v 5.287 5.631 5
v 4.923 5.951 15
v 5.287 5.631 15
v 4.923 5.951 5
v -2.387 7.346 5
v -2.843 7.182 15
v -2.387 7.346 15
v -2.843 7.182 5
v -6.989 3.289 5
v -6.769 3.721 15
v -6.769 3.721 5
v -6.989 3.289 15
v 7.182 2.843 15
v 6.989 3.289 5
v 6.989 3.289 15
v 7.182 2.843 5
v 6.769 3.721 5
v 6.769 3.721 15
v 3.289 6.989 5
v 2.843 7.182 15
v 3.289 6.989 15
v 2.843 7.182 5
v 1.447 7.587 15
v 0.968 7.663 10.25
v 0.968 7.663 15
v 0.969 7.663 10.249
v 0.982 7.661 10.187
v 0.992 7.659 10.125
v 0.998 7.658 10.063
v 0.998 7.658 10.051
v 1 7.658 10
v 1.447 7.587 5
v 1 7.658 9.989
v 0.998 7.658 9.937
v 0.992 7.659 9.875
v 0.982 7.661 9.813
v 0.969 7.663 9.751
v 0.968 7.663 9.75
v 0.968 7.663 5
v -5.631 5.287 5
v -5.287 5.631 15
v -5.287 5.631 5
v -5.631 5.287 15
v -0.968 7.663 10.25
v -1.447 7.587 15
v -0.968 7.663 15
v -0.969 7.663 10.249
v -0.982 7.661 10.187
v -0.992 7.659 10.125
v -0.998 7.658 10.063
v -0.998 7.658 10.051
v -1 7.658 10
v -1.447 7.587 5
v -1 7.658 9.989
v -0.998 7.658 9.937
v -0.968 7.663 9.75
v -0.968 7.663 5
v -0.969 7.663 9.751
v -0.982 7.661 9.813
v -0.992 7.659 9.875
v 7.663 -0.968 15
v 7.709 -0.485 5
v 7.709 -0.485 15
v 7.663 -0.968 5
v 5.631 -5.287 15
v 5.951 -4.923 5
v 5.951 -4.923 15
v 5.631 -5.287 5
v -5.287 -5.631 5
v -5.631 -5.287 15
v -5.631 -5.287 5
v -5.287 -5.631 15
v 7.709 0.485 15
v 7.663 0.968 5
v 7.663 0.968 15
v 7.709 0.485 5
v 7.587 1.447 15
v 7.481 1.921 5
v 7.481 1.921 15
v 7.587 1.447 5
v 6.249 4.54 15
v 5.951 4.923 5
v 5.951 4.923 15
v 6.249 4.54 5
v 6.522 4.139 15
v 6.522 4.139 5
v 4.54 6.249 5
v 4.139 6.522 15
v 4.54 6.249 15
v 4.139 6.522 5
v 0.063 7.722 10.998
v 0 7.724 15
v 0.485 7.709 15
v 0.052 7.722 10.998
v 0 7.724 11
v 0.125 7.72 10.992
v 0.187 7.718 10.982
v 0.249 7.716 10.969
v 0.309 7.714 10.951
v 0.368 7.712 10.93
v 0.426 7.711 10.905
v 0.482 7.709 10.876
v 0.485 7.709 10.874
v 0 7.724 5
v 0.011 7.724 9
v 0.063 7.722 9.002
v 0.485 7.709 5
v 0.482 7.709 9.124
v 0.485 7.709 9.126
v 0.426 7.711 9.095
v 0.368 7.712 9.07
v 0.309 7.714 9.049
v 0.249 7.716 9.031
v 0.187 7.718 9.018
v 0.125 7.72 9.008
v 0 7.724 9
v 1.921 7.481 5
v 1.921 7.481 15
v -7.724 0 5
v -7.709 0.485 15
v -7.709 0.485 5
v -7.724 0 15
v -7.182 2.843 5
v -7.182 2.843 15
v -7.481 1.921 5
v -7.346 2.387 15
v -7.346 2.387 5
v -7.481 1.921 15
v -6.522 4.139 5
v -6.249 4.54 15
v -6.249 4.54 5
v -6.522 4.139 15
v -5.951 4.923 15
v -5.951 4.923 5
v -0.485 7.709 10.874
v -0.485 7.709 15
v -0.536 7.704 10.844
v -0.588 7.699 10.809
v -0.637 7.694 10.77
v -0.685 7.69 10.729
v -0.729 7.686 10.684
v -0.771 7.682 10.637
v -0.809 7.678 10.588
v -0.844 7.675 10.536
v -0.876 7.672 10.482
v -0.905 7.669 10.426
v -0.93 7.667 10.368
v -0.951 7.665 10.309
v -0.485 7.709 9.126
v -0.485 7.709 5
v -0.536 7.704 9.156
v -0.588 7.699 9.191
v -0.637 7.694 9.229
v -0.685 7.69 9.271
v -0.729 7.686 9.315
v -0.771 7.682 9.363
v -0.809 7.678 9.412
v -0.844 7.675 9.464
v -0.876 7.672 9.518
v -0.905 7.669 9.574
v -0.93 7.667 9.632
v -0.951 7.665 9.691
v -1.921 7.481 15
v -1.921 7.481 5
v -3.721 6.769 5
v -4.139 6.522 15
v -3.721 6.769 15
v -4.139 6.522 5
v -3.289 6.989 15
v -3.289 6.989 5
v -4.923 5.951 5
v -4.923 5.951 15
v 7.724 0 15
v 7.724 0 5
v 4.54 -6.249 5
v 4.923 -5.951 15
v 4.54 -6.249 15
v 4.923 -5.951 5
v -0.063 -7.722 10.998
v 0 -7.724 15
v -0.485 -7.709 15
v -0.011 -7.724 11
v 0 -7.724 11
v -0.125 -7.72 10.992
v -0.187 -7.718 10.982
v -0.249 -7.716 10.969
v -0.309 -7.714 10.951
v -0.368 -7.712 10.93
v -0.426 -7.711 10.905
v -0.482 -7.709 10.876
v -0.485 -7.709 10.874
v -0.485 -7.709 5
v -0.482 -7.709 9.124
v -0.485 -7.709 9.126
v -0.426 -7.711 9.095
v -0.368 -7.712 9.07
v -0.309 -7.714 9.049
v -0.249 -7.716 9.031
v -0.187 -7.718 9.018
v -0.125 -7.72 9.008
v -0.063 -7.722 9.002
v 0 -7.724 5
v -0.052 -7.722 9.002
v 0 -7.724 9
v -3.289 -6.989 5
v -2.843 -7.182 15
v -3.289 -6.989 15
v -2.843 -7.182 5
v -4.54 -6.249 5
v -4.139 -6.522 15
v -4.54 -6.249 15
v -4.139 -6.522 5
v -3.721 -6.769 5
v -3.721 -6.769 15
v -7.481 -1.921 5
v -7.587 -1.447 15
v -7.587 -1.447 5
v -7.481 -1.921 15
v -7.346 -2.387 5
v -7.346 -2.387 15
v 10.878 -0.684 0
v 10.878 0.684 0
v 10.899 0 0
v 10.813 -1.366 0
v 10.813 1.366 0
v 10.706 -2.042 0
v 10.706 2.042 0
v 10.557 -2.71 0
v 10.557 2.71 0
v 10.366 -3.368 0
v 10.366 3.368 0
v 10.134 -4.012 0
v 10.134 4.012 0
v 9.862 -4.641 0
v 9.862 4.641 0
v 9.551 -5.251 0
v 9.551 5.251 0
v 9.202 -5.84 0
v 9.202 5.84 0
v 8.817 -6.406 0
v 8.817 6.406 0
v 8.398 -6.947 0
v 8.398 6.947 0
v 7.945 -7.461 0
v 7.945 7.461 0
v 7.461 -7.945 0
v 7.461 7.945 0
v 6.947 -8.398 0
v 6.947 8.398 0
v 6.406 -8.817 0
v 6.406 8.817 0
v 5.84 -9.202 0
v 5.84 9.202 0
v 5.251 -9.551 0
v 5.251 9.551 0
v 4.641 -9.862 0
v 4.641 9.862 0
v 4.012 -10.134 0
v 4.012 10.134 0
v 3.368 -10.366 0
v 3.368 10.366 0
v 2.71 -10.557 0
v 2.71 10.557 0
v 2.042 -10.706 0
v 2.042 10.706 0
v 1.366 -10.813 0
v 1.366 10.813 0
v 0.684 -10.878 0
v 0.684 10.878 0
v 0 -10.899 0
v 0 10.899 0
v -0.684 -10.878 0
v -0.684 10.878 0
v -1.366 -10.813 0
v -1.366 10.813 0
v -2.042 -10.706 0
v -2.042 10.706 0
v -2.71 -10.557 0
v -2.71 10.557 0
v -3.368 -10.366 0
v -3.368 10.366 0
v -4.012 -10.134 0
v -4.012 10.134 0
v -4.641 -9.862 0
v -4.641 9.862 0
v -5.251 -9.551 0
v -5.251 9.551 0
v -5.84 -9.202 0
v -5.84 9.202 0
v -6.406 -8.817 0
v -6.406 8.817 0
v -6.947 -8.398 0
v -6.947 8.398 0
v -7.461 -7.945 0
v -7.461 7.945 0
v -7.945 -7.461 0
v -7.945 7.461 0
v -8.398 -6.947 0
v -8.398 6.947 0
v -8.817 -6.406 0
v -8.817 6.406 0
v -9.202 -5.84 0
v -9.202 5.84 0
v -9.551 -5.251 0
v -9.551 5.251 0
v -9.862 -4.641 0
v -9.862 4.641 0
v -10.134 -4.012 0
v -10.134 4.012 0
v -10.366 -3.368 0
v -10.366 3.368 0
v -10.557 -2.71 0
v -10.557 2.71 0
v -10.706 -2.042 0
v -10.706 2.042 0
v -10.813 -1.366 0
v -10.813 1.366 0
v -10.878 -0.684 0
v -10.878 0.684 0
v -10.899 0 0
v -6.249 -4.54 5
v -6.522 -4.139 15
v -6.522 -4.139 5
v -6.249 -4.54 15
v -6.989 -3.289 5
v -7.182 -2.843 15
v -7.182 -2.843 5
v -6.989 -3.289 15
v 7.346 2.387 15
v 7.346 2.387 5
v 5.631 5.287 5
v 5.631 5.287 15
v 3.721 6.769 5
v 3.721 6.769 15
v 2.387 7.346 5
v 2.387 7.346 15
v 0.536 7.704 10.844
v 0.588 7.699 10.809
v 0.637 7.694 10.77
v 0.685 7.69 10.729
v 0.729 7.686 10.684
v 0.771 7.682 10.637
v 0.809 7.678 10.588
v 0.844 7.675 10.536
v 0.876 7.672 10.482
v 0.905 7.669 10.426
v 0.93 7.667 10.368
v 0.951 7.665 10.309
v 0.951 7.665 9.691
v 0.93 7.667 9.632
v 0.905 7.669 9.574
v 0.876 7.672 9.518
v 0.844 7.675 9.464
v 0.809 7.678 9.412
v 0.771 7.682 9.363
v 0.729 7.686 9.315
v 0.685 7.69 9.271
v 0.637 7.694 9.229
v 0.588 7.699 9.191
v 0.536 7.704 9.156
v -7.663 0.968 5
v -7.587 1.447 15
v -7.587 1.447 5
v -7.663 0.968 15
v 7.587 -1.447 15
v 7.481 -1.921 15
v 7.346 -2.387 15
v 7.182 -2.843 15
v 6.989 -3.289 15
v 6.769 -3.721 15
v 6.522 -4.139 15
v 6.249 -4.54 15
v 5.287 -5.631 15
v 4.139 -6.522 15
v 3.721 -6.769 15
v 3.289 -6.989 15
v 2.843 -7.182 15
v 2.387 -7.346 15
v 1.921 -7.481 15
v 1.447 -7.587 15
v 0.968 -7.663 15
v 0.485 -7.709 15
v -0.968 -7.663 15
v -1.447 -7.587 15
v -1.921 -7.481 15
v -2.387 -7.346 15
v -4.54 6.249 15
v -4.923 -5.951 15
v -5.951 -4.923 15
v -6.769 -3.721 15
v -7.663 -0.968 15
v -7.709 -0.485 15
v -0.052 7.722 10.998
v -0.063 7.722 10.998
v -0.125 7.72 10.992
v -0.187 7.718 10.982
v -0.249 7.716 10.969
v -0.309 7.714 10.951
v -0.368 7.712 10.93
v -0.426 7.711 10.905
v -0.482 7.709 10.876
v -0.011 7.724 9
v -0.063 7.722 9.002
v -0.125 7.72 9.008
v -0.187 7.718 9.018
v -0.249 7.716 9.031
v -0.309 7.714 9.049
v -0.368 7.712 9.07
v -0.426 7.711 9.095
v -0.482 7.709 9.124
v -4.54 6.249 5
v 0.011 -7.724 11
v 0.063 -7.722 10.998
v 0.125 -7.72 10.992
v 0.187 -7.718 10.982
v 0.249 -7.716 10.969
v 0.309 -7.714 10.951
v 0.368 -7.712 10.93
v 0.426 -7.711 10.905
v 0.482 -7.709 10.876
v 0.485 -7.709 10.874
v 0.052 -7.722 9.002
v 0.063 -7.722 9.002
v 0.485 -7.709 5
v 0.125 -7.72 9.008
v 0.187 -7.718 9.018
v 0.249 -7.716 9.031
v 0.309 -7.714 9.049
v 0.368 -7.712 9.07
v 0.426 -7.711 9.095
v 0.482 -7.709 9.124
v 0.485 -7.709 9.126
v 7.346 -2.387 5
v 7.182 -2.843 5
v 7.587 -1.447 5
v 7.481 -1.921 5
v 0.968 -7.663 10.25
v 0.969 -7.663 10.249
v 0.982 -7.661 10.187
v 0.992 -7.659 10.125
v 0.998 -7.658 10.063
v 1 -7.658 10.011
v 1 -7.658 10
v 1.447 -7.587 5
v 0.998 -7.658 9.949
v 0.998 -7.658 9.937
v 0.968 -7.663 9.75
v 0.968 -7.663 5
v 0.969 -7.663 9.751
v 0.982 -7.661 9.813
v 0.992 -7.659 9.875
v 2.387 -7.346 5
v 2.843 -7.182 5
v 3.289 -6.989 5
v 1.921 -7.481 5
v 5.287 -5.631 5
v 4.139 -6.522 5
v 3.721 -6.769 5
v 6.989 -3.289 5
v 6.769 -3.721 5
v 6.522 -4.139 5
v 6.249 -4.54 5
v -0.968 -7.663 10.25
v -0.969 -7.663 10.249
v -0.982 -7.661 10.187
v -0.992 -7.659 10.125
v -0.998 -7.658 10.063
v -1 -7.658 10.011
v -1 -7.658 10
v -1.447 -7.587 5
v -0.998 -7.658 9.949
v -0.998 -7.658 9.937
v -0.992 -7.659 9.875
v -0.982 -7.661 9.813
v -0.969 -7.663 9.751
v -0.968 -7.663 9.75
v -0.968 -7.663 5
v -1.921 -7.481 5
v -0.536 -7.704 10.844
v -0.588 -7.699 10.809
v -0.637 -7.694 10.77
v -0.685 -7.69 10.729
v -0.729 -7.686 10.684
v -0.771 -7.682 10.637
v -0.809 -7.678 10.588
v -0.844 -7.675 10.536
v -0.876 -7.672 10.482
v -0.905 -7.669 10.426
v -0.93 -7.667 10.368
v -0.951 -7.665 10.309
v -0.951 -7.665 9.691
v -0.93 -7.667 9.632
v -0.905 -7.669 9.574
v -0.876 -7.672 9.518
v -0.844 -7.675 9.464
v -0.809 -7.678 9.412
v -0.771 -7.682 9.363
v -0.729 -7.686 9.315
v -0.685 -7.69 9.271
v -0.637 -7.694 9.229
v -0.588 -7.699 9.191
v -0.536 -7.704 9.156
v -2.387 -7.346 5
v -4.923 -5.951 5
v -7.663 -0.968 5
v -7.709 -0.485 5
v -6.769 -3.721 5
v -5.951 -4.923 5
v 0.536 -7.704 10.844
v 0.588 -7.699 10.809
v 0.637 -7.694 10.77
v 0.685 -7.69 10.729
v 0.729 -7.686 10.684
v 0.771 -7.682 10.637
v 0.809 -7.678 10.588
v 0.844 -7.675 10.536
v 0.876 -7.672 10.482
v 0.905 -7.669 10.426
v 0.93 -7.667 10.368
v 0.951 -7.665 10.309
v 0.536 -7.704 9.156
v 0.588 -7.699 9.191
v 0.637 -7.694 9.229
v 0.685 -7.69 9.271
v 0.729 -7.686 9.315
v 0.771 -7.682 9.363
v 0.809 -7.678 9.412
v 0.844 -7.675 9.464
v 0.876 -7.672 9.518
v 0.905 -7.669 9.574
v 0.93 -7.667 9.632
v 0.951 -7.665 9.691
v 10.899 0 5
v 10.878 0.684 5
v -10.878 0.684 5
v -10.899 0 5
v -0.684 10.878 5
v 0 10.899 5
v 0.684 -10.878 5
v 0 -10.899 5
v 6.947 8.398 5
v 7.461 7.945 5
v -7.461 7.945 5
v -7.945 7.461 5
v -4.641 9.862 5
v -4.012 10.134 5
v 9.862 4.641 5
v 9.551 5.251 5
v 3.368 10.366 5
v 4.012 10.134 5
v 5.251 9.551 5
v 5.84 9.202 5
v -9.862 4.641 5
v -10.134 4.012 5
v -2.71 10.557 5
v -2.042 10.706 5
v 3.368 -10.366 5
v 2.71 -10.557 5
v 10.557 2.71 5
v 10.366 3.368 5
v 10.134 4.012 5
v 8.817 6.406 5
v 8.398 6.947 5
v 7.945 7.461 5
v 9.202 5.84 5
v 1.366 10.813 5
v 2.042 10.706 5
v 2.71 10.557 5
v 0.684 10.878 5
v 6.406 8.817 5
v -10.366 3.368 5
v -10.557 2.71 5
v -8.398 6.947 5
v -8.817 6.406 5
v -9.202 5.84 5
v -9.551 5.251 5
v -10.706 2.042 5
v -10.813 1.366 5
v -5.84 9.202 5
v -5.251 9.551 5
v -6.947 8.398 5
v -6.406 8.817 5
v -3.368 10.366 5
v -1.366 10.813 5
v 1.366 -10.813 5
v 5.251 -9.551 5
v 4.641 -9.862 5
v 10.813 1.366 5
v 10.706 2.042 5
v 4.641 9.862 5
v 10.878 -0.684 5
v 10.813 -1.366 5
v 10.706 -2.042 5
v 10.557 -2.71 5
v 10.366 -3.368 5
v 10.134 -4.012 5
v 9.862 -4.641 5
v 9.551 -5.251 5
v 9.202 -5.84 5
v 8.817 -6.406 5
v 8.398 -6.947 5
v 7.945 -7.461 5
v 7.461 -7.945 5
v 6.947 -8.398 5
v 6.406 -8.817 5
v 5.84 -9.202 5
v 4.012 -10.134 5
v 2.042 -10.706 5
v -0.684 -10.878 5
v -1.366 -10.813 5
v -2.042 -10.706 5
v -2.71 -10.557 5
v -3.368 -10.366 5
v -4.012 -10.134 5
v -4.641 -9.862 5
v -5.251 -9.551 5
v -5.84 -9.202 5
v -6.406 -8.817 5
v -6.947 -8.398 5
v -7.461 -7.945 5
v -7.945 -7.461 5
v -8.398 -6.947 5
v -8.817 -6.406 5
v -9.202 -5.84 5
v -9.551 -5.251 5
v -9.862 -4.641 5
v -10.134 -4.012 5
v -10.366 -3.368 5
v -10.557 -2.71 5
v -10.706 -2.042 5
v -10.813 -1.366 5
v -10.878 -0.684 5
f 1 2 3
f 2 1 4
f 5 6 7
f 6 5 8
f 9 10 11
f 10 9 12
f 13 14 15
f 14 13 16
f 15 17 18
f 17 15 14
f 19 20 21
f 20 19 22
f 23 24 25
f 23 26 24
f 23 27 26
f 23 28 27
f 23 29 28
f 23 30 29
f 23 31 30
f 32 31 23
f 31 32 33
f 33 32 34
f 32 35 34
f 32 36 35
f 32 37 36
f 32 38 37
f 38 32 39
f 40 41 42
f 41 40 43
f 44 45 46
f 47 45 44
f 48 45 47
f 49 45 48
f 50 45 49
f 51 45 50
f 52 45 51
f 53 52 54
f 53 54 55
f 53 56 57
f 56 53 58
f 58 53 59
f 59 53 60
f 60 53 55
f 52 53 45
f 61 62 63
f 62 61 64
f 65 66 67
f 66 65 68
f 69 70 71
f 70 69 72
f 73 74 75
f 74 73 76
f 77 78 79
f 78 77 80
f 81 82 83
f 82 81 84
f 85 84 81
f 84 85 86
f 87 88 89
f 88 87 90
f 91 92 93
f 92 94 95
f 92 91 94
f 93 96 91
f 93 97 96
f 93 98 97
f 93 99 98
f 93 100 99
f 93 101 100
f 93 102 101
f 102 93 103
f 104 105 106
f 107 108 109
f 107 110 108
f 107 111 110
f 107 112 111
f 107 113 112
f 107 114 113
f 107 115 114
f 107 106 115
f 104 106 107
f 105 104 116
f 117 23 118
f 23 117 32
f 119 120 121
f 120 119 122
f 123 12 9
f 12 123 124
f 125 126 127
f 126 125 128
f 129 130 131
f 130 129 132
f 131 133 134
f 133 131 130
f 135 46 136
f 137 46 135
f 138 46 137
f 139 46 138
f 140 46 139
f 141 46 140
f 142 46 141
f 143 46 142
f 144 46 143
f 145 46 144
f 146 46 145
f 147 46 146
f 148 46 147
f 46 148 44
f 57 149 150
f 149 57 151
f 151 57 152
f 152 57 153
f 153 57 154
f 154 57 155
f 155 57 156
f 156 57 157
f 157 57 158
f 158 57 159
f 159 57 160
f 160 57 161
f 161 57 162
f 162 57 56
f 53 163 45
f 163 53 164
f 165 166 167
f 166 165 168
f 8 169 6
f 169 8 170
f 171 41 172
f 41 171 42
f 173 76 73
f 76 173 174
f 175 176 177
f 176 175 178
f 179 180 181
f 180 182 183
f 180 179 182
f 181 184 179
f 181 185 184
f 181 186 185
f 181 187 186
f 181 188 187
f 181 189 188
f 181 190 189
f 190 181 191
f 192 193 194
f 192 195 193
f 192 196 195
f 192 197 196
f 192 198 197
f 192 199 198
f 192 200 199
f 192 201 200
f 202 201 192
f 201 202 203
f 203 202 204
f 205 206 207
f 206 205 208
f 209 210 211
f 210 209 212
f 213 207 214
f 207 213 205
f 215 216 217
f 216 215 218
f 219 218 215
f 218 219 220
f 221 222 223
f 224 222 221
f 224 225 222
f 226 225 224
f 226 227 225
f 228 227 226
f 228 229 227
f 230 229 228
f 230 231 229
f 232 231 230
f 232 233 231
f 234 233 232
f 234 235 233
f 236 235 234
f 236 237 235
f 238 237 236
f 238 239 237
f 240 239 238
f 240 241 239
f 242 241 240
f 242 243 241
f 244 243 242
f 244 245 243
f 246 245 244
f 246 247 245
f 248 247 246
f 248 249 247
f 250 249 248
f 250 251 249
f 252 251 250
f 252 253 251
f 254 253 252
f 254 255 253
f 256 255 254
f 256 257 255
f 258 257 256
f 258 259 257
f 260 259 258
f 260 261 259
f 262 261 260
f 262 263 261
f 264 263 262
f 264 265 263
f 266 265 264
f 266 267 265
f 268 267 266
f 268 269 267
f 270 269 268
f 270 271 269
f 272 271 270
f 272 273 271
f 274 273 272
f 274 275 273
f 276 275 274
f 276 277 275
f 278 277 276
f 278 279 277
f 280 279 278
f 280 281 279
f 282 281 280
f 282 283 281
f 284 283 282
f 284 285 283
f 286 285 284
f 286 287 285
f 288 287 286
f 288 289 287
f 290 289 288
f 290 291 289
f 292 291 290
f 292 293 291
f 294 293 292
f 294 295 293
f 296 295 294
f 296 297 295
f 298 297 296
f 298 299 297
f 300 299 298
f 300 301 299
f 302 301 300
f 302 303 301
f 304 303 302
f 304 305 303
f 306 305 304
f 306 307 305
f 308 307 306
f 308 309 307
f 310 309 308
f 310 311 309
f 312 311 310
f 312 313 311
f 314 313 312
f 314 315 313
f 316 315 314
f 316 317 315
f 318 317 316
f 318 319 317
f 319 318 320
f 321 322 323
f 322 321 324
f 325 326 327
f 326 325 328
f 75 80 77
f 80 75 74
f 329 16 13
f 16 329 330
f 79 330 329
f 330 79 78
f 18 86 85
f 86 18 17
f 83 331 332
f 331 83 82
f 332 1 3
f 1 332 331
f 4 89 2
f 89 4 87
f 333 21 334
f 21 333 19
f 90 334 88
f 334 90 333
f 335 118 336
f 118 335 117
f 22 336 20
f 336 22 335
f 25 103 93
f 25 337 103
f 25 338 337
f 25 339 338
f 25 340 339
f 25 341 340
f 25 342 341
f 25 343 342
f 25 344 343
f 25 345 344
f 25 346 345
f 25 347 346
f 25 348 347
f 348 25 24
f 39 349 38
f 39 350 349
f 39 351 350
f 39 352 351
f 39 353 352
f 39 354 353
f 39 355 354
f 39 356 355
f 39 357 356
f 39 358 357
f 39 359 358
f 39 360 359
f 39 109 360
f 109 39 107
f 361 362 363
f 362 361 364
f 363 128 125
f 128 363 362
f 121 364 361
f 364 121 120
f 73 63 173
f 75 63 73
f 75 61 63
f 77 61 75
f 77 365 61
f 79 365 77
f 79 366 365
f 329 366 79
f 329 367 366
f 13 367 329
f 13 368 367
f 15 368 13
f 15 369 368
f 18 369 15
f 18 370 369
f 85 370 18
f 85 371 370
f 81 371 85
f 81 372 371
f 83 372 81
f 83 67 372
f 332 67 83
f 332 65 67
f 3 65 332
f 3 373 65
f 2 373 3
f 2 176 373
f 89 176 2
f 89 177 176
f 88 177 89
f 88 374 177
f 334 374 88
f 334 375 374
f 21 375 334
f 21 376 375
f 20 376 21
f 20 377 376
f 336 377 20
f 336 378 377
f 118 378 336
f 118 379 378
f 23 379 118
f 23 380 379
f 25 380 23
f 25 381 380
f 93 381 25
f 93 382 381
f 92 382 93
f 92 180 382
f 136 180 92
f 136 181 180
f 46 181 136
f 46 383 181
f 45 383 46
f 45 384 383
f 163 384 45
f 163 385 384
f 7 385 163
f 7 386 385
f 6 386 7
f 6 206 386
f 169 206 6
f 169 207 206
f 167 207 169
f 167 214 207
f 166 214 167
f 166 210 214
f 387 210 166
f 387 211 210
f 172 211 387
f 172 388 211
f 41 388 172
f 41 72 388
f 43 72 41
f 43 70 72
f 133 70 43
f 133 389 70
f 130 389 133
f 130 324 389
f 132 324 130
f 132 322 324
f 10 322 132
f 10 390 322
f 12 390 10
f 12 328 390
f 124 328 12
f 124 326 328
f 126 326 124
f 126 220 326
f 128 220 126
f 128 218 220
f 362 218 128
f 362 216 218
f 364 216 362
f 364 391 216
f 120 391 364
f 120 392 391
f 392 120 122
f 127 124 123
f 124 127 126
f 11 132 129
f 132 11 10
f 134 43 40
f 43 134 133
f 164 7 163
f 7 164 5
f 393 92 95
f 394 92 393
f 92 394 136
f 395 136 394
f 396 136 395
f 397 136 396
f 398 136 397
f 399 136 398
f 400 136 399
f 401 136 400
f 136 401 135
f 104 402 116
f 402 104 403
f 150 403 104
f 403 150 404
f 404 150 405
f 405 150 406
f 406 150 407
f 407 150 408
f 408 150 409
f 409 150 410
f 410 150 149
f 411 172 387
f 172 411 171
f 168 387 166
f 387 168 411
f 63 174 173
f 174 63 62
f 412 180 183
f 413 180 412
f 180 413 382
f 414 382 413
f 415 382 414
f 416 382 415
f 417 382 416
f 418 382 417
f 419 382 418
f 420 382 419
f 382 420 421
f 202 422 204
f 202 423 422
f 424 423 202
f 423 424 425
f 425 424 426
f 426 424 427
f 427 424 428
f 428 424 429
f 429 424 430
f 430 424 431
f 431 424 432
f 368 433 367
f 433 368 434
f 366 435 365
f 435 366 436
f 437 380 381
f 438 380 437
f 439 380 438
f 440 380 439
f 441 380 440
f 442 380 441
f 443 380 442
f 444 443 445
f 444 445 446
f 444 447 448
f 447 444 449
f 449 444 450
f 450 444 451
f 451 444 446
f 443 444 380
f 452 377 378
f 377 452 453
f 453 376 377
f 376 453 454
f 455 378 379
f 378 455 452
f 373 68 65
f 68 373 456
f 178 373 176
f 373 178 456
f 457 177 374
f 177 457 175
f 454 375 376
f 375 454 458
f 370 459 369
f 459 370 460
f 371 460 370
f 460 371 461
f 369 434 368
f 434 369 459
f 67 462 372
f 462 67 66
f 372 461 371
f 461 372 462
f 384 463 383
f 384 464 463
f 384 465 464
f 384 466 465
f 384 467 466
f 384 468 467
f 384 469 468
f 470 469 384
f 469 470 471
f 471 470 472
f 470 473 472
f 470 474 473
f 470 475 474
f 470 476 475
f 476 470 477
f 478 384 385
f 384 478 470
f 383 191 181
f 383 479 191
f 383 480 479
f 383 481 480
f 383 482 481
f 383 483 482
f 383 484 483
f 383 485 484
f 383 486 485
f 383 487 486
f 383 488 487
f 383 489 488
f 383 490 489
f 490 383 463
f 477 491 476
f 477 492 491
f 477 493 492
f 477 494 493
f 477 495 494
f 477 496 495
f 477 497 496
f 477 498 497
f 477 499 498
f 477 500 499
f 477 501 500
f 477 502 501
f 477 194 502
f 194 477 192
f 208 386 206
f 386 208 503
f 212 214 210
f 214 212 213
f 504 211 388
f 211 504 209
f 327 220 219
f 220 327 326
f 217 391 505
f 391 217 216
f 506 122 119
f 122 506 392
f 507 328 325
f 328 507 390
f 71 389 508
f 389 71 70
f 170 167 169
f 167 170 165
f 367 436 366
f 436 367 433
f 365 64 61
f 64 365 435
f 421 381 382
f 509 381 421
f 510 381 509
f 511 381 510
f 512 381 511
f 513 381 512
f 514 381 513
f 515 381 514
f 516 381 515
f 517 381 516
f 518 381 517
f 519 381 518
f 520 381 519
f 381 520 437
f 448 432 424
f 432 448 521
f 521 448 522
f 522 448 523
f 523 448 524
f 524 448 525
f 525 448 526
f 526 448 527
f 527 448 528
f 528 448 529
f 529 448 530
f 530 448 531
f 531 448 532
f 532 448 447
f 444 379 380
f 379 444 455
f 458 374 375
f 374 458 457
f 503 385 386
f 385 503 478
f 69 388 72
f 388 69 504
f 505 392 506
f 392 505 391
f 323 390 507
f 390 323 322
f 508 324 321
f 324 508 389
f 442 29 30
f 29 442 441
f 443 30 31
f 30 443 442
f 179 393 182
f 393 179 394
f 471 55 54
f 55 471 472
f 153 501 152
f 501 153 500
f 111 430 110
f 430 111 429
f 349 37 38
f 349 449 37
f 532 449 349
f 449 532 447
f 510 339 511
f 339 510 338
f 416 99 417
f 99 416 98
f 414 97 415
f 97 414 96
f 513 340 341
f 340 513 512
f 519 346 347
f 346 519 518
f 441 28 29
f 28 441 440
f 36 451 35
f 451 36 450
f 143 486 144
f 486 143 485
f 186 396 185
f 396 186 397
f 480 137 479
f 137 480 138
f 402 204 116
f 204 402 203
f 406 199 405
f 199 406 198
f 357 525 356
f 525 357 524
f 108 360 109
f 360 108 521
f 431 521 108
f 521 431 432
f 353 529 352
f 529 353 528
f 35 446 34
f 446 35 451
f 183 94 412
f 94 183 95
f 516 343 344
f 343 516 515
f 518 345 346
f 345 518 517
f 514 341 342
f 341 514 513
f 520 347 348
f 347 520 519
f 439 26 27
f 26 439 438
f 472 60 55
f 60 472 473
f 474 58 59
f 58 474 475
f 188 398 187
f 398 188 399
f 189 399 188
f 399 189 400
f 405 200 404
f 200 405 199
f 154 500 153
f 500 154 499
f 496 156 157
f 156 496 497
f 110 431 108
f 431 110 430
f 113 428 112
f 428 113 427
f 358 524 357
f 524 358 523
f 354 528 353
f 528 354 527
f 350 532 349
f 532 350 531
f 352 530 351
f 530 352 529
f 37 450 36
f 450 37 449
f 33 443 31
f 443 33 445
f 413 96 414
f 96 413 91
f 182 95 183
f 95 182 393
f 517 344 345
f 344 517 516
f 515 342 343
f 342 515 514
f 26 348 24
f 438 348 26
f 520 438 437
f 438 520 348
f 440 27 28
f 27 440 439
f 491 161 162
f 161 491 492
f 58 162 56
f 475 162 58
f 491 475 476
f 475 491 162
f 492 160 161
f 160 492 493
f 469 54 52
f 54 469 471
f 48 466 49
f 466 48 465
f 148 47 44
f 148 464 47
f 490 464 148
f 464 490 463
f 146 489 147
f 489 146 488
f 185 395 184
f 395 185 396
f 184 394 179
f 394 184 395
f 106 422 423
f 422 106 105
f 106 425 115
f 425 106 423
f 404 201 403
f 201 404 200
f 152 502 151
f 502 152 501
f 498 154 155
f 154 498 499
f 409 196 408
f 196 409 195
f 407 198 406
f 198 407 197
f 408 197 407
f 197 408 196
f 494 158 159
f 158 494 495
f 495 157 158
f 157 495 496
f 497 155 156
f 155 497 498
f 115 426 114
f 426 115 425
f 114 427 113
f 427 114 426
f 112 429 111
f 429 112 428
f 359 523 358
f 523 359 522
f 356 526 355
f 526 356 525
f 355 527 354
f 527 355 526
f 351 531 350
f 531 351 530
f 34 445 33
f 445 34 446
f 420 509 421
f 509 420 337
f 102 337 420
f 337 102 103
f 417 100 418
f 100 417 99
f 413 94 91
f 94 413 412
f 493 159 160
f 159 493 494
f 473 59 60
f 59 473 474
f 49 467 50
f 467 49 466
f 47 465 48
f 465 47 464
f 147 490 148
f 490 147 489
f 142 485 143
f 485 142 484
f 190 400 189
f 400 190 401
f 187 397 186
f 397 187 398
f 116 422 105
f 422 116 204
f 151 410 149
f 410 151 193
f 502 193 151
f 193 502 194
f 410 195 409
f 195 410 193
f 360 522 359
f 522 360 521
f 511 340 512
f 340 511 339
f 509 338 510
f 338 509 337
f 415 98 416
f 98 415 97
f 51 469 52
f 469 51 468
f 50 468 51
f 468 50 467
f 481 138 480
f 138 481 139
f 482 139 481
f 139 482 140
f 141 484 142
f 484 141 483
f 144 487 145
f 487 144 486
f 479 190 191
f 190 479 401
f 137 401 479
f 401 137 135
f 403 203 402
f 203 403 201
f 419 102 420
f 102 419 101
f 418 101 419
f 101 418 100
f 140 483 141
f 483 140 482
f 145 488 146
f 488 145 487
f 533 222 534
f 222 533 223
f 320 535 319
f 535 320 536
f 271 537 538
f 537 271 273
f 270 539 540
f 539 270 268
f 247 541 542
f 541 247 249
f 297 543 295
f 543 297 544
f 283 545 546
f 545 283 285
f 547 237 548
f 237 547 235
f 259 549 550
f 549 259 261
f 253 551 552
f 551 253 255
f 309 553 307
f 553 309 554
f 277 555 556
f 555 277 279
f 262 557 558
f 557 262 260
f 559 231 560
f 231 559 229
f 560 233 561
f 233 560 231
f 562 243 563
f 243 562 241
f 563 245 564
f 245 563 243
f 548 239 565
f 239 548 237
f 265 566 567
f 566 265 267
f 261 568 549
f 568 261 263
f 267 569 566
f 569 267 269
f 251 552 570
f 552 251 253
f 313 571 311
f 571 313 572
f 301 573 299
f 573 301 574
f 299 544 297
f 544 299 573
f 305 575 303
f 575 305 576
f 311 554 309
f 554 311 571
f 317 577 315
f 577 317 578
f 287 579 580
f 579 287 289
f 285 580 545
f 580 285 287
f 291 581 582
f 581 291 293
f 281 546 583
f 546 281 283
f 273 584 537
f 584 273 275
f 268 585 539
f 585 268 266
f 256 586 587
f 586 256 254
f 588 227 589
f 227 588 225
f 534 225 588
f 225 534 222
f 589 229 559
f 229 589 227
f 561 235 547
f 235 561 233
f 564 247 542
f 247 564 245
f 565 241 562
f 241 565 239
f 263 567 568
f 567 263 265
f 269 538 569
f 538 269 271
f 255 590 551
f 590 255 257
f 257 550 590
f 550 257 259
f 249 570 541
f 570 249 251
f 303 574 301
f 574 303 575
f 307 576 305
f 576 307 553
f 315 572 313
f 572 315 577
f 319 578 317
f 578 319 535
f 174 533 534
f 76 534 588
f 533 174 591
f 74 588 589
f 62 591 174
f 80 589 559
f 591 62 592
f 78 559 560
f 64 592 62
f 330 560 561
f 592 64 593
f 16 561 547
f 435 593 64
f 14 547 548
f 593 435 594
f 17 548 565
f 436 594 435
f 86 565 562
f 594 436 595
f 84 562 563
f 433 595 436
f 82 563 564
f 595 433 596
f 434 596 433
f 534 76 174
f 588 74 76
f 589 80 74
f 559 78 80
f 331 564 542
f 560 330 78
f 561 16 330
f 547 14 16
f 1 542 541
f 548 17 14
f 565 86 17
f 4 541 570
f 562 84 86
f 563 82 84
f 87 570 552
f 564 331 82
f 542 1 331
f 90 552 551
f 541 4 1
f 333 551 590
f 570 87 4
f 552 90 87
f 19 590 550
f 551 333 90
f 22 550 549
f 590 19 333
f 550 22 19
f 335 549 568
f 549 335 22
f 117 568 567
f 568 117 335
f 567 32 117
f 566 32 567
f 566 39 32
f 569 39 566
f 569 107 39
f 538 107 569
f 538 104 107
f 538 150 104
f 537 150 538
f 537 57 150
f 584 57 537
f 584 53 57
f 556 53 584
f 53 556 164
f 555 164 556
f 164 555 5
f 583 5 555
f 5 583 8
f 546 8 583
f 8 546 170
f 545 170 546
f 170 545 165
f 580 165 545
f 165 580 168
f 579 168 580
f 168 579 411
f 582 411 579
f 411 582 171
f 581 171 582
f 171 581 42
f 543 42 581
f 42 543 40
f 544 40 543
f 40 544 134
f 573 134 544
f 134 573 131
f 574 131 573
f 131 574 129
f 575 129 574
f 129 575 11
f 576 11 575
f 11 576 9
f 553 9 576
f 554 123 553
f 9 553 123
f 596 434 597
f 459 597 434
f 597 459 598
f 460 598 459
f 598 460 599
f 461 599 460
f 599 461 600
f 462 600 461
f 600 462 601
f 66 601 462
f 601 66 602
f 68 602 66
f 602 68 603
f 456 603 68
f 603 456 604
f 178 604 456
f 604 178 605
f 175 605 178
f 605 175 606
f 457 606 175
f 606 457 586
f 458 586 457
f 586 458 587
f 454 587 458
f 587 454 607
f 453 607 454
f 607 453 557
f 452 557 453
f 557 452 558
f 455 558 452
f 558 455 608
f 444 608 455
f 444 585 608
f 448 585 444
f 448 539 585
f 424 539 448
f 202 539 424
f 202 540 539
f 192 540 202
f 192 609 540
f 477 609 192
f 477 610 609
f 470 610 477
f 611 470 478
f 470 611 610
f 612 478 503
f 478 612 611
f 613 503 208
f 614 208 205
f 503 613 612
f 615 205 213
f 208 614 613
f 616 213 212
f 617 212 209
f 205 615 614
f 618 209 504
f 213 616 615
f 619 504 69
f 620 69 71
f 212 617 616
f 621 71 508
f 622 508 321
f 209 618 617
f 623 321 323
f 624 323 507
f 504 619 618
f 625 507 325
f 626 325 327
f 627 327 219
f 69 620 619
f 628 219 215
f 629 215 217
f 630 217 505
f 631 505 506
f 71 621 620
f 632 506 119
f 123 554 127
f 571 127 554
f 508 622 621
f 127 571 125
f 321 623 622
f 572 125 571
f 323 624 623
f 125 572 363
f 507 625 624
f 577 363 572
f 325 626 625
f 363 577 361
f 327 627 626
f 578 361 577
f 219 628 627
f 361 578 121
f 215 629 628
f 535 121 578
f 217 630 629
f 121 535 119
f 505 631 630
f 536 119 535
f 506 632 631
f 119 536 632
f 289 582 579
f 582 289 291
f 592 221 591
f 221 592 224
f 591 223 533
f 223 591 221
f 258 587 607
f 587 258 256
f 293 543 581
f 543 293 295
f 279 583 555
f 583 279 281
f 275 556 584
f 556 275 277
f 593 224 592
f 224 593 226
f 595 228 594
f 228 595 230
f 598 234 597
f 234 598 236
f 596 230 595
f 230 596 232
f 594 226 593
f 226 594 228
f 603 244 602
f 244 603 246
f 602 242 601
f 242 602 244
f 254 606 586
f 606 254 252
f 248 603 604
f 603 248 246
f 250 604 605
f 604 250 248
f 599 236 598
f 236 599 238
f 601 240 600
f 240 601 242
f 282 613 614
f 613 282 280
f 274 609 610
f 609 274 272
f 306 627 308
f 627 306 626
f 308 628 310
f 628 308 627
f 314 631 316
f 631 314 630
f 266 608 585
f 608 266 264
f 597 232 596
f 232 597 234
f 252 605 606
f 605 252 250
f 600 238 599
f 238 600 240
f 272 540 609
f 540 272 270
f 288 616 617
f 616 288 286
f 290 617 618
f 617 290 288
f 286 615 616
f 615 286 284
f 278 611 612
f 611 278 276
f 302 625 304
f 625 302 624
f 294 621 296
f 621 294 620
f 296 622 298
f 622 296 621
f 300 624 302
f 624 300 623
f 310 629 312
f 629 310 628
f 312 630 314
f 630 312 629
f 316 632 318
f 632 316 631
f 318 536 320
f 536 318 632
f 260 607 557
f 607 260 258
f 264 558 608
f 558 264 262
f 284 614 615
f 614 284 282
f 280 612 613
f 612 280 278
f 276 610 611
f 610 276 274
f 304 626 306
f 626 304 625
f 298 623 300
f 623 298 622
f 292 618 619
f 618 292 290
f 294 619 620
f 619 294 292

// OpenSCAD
$fn=100;

X=0.3;
outer_dia=(0.87*25.4);
inner_dia=(0.62*25.4);

cylinder(d=(outer_dia-X),h=5);
difference(){
    cylinder(d=(inner_dia-X),h=15);
    rotate ([90,0,0]) translate([0,10,-12]) cylinder(d=2,h=24);
}
